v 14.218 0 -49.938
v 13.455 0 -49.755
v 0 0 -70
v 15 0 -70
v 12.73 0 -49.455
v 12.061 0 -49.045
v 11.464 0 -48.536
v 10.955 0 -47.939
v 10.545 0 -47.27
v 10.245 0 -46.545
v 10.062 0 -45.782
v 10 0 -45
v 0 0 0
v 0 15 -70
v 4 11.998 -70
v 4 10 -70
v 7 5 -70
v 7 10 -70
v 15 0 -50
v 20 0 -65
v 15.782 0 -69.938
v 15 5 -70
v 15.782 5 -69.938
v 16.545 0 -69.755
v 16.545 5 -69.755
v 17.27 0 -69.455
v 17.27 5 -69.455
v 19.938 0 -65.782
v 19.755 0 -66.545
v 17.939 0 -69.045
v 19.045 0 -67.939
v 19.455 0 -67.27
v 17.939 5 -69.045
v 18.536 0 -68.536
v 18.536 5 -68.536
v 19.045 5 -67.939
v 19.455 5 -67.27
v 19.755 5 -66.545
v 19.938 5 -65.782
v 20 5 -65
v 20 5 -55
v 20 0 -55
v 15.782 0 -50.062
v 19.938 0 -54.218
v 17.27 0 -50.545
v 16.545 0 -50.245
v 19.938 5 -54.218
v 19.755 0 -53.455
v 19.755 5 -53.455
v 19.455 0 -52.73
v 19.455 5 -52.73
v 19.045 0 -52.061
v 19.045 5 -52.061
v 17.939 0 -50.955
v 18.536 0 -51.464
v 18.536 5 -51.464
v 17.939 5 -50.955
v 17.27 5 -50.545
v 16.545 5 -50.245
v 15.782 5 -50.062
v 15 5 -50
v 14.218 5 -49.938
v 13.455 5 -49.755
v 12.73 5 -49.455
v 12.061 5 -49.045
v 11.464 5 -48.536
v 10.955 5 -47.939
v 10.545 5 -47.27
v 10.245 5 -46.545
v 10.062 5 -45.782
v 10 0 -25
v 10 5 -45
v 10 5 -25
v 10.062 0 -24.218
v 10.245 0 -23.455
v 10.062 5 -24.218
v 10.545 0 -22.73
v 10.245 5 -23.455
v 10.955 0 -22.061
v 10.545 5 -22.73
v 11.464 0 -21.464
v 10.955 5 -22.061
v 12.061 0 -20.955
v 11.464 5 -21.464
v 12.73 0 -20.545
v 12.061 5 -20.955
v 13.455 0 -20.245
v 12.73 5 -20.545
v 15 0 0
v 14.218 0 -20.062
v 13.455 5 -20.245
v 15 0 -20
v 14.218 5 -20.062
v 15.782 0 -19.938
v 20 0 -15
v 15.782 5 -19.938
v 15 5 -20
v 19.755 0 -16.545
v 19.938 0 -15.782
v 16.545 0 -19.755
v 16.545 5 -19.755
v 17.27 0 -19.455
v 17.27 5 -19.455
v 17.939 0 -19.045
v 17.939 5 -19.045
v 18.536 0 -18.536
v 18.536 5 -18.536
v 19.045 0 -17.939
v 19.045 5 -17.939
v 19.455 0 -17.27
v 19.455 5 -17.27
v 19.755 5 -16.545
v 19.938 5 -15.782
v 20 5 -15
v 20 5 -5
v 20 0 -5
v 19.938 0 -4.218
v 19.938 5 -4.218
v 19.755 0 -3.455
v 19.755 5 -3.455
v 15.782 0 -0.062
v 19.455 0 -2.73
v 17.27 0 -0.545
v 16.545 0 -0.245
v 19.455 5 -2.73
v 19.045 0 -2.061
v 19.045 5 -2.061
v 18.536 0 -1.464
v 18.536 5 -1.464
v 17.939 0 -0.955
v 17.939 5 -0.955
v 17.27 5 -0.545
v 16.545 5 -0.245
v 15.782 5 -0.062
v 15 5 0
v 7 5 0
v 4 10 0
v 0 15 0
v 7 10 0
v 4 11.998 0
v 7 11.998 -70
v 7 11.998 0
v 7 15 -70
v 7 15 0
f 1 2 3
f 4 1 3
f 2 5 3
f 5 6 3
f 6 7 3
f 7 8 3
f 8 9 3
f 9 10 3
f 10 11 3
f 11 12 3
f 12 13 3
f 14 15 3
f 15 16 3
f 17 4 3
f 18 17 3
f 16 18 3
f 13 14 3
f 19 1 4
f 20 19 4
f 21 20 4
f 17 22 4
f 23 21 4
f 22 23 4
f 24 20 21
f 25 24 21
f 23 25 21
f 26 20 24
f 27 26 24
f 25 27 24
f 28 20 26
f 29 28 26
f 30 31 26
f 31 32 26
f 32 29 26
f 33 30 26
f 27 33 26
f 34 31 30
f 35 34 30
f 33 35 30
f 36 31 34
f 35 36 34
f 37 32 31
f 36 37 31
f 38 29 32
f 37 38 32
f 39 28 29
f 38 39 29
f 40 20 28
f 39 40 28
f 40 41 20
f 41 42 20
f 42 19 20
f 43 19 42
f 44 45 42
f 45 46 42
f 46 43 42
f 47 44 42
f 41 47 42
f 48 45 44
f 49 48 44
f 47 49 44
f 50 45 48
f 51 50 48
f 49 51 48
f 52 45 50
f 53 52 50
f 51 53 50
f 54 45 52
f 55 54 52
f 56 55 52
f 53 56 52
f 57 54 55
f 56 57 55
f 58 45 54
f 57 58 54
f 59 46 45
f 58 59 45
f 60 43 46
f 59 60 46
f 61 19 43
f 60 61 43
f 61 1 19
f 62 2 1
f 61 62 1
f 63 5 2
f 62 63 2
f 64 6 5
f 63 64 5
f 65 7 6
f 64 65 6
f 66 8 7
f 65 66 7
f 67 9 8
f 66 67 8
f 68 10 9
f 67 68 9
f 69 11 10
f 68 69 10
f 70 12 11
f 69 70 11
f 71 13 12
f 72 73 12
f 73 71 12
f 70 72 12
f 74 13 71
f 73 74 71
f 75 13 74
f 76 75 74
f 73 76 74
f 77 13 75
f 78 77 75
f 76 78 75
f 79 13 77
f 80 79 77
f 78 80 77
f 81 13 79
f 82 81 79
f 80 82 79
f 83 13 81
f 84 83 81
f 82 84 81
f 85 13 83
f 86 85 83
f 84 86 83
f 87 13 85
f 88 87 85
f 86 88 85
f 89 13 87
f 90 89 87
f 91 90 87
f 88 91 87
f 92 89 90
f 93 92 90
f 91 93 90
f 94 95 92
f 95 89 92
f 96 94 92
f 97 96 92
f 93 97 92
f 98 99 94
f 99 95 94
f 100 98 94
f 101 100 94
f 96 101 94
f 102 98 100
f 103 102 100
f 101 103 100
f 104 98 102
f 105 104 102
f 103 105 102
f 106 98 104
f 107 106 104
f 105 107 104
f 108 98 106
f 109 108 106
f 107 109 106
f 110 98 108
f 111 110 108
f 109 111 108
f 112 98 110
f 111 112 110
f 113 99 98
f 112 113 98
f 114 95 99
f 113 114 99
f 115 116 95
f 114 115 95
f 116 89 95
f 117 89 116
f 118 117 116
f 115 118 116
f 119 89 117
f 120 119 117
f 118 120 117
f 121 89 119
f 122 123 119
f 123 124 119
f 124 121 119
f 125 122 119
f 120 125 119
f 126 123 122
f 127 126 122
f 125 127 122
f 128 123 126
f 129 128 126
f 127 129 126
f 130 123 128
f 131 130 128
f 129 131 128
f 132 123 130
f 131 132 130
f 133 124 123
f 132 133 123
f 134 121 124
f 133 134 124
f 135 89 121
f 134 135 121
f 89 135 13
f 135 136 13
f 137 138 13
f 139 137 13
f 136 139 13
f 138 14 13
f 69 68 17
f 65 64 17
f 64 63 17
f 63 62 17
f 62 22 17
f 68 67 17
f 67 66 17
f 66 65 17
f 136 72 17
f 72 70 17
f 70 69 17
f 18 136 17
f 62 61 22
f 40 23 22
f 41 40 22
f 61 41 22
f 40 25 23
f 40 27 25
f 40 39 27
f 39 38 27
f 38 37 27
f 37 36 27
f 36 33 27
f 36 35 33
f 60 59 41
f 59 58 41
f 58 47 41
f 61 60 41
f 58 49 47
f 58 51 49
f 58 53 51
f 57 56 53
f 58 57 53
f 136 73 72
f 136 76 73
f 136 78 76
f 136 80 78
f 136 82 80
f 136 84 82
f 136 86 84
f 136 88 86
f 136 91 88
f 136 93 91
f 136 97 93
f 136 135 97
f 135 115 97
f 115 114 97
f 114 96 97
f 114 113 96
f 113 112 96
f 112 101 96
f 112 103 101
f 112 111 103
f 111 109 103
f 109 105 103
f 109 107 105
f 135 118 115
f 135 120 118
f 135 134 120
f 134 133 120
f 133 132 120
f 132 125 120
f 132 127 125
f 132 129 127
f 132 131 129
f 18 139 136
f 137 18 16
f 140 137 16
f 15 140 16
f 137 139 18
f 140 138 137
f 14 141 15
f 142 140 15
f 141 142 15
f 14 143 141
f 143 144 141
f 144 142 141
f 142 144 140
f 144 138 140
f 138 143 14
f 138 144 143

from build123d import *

# Parameters (mm, degrees)
SKETCH4_W           = 20
SKETCH4_H           = 70
BOSS_EXTRUDE2_DEPTH = 5
SKETCH5_W           = 7
SKETCH5_H           = 70
BOSS_EXTRUDE3_DEPTH = 10
SKETCH6_W           = 70
SKETCH6_H           = 1.998143523
CUT_EXTRUDE1_DEPTH  = 3
SKETCH8_W           = 10
SKETCH8_H           = 30
CUT_EXTRUDE2_DEPTH  = 74.484692283
FILLET3_START       = -1
FILLET3_DEPTH       = 6
FILLET3_2_DEPTH     = 5
FILLET4_R           = 5


with BuildPart() as part:
    # Sketch4 → Boss-Extrude2 (new body)
    with BuildSketch(Plane(origin=(0, 0, 0), x_dir=(1, 0, 0), z_dir=(0, 1, 0))):
        with Locations((10, 35)):
            Rectangle(SKETCH4_W, SKETCH4_H)
    extrude(amount=BOSS_EXTRUDE2_DEPTH)

    # Sketch5 → Boss-Extrude3 (add)
    with BuildSketch(Plane(origin=(0, 5, 0), x_dir=(1, 0, 0), z_dir=(0, 1, 0))):
        with Locations((3.5, 35)):
            Rectangle(SKETCH5_W, SKETCH5_H)
    extrude(amount=BOSS_EXTRUDE3_DEPTH)

    # Sketch6 → Cut-Extrude1 (cut)
    with BuildSketch(Plane(origin=(7, 0, 0), x_dir=(0, 0, -1), z_dir=(1, 0, 0))):
        with Locations((35, 10.999071762)):
            Rectangle(SKETCH6_W, SKETCH6_H)
    extrude(amount=-CUT_EXTRUDE1_DEPTH, mode=Mode.SUBTRACT)

    # Sketch8 → Cut-Extrude2 (cut, through all)
    with BuildSketch(Plane(origin=(0, 5, 0), x_dir=(1, 0, 0), z_dir=(0, 1, 0))):
        with Locations((15, 35)):
            Rectangle(SKETCH8_W, SKETCH8_H)
    extrude(amount=-CUT_EXTRUDE2_DEPTH, mode=Mode.SUBTRACT)

    # Fillet3: read off the stored shape, not the designer's step
    # Fillet3 outline → Fillet3 (cut)
    with BuildSketch(Plane(origin=(0, 0, 0), x_dir=(1, 0, 0), z_dir=(0, 1, 0)).offset(FILLET3_START)):
        with BuildLine():
            Line((20, 50), (20, 55))
            ThreePointArc((20, 55), (18.535533906, 51.464466094), (15, 50))
            Line((15, 50), (20, 50))
        make_face()
        with BuildLine():
            Line((20, 20), (15, 20))
            ThreePointArc((15, 20), (18.535533906, 18.535533906), (20, 15))
            Line((20, 15), (20, 20))
        make_face()
    extrude(amount=FILLET3_DEPTH, mode=Mode.SUBTRACT)

    # Fillet3 2 outline → Fillet3 2 (add)
    with BuildSketch(Plane(origin=(0, 0, 0), x_dir=(1, 0, 0), z_dir=(0, 1, 0))):
        with BuildLine():
            ThreePointArc((15, 20), (11.464466094, 21.464466094), (10, 25))
            Line((10, 25), (10, 20))
            Line((10, 20), (15, 20))
        make_face()
        with BuildLine():
            ThreePointArc((10, 45), (11.464466094, 48.535533906), (15, 50))
            Line((15, 50), (10, 50))
            Line((10, 50), (10, 45))
        make_face()
    extrude(amount=FILLET3_2_DEPTH)

    # Fillet4
    fillet4_edges = [part.edges().sort_by_distance(p)[0] for p in [
        (20, 2.5, -70),
        (20, 2.5, 0),
    ]]
    fillet(fillet4_edges, radius=FILLET4_R)


solid = part.part
